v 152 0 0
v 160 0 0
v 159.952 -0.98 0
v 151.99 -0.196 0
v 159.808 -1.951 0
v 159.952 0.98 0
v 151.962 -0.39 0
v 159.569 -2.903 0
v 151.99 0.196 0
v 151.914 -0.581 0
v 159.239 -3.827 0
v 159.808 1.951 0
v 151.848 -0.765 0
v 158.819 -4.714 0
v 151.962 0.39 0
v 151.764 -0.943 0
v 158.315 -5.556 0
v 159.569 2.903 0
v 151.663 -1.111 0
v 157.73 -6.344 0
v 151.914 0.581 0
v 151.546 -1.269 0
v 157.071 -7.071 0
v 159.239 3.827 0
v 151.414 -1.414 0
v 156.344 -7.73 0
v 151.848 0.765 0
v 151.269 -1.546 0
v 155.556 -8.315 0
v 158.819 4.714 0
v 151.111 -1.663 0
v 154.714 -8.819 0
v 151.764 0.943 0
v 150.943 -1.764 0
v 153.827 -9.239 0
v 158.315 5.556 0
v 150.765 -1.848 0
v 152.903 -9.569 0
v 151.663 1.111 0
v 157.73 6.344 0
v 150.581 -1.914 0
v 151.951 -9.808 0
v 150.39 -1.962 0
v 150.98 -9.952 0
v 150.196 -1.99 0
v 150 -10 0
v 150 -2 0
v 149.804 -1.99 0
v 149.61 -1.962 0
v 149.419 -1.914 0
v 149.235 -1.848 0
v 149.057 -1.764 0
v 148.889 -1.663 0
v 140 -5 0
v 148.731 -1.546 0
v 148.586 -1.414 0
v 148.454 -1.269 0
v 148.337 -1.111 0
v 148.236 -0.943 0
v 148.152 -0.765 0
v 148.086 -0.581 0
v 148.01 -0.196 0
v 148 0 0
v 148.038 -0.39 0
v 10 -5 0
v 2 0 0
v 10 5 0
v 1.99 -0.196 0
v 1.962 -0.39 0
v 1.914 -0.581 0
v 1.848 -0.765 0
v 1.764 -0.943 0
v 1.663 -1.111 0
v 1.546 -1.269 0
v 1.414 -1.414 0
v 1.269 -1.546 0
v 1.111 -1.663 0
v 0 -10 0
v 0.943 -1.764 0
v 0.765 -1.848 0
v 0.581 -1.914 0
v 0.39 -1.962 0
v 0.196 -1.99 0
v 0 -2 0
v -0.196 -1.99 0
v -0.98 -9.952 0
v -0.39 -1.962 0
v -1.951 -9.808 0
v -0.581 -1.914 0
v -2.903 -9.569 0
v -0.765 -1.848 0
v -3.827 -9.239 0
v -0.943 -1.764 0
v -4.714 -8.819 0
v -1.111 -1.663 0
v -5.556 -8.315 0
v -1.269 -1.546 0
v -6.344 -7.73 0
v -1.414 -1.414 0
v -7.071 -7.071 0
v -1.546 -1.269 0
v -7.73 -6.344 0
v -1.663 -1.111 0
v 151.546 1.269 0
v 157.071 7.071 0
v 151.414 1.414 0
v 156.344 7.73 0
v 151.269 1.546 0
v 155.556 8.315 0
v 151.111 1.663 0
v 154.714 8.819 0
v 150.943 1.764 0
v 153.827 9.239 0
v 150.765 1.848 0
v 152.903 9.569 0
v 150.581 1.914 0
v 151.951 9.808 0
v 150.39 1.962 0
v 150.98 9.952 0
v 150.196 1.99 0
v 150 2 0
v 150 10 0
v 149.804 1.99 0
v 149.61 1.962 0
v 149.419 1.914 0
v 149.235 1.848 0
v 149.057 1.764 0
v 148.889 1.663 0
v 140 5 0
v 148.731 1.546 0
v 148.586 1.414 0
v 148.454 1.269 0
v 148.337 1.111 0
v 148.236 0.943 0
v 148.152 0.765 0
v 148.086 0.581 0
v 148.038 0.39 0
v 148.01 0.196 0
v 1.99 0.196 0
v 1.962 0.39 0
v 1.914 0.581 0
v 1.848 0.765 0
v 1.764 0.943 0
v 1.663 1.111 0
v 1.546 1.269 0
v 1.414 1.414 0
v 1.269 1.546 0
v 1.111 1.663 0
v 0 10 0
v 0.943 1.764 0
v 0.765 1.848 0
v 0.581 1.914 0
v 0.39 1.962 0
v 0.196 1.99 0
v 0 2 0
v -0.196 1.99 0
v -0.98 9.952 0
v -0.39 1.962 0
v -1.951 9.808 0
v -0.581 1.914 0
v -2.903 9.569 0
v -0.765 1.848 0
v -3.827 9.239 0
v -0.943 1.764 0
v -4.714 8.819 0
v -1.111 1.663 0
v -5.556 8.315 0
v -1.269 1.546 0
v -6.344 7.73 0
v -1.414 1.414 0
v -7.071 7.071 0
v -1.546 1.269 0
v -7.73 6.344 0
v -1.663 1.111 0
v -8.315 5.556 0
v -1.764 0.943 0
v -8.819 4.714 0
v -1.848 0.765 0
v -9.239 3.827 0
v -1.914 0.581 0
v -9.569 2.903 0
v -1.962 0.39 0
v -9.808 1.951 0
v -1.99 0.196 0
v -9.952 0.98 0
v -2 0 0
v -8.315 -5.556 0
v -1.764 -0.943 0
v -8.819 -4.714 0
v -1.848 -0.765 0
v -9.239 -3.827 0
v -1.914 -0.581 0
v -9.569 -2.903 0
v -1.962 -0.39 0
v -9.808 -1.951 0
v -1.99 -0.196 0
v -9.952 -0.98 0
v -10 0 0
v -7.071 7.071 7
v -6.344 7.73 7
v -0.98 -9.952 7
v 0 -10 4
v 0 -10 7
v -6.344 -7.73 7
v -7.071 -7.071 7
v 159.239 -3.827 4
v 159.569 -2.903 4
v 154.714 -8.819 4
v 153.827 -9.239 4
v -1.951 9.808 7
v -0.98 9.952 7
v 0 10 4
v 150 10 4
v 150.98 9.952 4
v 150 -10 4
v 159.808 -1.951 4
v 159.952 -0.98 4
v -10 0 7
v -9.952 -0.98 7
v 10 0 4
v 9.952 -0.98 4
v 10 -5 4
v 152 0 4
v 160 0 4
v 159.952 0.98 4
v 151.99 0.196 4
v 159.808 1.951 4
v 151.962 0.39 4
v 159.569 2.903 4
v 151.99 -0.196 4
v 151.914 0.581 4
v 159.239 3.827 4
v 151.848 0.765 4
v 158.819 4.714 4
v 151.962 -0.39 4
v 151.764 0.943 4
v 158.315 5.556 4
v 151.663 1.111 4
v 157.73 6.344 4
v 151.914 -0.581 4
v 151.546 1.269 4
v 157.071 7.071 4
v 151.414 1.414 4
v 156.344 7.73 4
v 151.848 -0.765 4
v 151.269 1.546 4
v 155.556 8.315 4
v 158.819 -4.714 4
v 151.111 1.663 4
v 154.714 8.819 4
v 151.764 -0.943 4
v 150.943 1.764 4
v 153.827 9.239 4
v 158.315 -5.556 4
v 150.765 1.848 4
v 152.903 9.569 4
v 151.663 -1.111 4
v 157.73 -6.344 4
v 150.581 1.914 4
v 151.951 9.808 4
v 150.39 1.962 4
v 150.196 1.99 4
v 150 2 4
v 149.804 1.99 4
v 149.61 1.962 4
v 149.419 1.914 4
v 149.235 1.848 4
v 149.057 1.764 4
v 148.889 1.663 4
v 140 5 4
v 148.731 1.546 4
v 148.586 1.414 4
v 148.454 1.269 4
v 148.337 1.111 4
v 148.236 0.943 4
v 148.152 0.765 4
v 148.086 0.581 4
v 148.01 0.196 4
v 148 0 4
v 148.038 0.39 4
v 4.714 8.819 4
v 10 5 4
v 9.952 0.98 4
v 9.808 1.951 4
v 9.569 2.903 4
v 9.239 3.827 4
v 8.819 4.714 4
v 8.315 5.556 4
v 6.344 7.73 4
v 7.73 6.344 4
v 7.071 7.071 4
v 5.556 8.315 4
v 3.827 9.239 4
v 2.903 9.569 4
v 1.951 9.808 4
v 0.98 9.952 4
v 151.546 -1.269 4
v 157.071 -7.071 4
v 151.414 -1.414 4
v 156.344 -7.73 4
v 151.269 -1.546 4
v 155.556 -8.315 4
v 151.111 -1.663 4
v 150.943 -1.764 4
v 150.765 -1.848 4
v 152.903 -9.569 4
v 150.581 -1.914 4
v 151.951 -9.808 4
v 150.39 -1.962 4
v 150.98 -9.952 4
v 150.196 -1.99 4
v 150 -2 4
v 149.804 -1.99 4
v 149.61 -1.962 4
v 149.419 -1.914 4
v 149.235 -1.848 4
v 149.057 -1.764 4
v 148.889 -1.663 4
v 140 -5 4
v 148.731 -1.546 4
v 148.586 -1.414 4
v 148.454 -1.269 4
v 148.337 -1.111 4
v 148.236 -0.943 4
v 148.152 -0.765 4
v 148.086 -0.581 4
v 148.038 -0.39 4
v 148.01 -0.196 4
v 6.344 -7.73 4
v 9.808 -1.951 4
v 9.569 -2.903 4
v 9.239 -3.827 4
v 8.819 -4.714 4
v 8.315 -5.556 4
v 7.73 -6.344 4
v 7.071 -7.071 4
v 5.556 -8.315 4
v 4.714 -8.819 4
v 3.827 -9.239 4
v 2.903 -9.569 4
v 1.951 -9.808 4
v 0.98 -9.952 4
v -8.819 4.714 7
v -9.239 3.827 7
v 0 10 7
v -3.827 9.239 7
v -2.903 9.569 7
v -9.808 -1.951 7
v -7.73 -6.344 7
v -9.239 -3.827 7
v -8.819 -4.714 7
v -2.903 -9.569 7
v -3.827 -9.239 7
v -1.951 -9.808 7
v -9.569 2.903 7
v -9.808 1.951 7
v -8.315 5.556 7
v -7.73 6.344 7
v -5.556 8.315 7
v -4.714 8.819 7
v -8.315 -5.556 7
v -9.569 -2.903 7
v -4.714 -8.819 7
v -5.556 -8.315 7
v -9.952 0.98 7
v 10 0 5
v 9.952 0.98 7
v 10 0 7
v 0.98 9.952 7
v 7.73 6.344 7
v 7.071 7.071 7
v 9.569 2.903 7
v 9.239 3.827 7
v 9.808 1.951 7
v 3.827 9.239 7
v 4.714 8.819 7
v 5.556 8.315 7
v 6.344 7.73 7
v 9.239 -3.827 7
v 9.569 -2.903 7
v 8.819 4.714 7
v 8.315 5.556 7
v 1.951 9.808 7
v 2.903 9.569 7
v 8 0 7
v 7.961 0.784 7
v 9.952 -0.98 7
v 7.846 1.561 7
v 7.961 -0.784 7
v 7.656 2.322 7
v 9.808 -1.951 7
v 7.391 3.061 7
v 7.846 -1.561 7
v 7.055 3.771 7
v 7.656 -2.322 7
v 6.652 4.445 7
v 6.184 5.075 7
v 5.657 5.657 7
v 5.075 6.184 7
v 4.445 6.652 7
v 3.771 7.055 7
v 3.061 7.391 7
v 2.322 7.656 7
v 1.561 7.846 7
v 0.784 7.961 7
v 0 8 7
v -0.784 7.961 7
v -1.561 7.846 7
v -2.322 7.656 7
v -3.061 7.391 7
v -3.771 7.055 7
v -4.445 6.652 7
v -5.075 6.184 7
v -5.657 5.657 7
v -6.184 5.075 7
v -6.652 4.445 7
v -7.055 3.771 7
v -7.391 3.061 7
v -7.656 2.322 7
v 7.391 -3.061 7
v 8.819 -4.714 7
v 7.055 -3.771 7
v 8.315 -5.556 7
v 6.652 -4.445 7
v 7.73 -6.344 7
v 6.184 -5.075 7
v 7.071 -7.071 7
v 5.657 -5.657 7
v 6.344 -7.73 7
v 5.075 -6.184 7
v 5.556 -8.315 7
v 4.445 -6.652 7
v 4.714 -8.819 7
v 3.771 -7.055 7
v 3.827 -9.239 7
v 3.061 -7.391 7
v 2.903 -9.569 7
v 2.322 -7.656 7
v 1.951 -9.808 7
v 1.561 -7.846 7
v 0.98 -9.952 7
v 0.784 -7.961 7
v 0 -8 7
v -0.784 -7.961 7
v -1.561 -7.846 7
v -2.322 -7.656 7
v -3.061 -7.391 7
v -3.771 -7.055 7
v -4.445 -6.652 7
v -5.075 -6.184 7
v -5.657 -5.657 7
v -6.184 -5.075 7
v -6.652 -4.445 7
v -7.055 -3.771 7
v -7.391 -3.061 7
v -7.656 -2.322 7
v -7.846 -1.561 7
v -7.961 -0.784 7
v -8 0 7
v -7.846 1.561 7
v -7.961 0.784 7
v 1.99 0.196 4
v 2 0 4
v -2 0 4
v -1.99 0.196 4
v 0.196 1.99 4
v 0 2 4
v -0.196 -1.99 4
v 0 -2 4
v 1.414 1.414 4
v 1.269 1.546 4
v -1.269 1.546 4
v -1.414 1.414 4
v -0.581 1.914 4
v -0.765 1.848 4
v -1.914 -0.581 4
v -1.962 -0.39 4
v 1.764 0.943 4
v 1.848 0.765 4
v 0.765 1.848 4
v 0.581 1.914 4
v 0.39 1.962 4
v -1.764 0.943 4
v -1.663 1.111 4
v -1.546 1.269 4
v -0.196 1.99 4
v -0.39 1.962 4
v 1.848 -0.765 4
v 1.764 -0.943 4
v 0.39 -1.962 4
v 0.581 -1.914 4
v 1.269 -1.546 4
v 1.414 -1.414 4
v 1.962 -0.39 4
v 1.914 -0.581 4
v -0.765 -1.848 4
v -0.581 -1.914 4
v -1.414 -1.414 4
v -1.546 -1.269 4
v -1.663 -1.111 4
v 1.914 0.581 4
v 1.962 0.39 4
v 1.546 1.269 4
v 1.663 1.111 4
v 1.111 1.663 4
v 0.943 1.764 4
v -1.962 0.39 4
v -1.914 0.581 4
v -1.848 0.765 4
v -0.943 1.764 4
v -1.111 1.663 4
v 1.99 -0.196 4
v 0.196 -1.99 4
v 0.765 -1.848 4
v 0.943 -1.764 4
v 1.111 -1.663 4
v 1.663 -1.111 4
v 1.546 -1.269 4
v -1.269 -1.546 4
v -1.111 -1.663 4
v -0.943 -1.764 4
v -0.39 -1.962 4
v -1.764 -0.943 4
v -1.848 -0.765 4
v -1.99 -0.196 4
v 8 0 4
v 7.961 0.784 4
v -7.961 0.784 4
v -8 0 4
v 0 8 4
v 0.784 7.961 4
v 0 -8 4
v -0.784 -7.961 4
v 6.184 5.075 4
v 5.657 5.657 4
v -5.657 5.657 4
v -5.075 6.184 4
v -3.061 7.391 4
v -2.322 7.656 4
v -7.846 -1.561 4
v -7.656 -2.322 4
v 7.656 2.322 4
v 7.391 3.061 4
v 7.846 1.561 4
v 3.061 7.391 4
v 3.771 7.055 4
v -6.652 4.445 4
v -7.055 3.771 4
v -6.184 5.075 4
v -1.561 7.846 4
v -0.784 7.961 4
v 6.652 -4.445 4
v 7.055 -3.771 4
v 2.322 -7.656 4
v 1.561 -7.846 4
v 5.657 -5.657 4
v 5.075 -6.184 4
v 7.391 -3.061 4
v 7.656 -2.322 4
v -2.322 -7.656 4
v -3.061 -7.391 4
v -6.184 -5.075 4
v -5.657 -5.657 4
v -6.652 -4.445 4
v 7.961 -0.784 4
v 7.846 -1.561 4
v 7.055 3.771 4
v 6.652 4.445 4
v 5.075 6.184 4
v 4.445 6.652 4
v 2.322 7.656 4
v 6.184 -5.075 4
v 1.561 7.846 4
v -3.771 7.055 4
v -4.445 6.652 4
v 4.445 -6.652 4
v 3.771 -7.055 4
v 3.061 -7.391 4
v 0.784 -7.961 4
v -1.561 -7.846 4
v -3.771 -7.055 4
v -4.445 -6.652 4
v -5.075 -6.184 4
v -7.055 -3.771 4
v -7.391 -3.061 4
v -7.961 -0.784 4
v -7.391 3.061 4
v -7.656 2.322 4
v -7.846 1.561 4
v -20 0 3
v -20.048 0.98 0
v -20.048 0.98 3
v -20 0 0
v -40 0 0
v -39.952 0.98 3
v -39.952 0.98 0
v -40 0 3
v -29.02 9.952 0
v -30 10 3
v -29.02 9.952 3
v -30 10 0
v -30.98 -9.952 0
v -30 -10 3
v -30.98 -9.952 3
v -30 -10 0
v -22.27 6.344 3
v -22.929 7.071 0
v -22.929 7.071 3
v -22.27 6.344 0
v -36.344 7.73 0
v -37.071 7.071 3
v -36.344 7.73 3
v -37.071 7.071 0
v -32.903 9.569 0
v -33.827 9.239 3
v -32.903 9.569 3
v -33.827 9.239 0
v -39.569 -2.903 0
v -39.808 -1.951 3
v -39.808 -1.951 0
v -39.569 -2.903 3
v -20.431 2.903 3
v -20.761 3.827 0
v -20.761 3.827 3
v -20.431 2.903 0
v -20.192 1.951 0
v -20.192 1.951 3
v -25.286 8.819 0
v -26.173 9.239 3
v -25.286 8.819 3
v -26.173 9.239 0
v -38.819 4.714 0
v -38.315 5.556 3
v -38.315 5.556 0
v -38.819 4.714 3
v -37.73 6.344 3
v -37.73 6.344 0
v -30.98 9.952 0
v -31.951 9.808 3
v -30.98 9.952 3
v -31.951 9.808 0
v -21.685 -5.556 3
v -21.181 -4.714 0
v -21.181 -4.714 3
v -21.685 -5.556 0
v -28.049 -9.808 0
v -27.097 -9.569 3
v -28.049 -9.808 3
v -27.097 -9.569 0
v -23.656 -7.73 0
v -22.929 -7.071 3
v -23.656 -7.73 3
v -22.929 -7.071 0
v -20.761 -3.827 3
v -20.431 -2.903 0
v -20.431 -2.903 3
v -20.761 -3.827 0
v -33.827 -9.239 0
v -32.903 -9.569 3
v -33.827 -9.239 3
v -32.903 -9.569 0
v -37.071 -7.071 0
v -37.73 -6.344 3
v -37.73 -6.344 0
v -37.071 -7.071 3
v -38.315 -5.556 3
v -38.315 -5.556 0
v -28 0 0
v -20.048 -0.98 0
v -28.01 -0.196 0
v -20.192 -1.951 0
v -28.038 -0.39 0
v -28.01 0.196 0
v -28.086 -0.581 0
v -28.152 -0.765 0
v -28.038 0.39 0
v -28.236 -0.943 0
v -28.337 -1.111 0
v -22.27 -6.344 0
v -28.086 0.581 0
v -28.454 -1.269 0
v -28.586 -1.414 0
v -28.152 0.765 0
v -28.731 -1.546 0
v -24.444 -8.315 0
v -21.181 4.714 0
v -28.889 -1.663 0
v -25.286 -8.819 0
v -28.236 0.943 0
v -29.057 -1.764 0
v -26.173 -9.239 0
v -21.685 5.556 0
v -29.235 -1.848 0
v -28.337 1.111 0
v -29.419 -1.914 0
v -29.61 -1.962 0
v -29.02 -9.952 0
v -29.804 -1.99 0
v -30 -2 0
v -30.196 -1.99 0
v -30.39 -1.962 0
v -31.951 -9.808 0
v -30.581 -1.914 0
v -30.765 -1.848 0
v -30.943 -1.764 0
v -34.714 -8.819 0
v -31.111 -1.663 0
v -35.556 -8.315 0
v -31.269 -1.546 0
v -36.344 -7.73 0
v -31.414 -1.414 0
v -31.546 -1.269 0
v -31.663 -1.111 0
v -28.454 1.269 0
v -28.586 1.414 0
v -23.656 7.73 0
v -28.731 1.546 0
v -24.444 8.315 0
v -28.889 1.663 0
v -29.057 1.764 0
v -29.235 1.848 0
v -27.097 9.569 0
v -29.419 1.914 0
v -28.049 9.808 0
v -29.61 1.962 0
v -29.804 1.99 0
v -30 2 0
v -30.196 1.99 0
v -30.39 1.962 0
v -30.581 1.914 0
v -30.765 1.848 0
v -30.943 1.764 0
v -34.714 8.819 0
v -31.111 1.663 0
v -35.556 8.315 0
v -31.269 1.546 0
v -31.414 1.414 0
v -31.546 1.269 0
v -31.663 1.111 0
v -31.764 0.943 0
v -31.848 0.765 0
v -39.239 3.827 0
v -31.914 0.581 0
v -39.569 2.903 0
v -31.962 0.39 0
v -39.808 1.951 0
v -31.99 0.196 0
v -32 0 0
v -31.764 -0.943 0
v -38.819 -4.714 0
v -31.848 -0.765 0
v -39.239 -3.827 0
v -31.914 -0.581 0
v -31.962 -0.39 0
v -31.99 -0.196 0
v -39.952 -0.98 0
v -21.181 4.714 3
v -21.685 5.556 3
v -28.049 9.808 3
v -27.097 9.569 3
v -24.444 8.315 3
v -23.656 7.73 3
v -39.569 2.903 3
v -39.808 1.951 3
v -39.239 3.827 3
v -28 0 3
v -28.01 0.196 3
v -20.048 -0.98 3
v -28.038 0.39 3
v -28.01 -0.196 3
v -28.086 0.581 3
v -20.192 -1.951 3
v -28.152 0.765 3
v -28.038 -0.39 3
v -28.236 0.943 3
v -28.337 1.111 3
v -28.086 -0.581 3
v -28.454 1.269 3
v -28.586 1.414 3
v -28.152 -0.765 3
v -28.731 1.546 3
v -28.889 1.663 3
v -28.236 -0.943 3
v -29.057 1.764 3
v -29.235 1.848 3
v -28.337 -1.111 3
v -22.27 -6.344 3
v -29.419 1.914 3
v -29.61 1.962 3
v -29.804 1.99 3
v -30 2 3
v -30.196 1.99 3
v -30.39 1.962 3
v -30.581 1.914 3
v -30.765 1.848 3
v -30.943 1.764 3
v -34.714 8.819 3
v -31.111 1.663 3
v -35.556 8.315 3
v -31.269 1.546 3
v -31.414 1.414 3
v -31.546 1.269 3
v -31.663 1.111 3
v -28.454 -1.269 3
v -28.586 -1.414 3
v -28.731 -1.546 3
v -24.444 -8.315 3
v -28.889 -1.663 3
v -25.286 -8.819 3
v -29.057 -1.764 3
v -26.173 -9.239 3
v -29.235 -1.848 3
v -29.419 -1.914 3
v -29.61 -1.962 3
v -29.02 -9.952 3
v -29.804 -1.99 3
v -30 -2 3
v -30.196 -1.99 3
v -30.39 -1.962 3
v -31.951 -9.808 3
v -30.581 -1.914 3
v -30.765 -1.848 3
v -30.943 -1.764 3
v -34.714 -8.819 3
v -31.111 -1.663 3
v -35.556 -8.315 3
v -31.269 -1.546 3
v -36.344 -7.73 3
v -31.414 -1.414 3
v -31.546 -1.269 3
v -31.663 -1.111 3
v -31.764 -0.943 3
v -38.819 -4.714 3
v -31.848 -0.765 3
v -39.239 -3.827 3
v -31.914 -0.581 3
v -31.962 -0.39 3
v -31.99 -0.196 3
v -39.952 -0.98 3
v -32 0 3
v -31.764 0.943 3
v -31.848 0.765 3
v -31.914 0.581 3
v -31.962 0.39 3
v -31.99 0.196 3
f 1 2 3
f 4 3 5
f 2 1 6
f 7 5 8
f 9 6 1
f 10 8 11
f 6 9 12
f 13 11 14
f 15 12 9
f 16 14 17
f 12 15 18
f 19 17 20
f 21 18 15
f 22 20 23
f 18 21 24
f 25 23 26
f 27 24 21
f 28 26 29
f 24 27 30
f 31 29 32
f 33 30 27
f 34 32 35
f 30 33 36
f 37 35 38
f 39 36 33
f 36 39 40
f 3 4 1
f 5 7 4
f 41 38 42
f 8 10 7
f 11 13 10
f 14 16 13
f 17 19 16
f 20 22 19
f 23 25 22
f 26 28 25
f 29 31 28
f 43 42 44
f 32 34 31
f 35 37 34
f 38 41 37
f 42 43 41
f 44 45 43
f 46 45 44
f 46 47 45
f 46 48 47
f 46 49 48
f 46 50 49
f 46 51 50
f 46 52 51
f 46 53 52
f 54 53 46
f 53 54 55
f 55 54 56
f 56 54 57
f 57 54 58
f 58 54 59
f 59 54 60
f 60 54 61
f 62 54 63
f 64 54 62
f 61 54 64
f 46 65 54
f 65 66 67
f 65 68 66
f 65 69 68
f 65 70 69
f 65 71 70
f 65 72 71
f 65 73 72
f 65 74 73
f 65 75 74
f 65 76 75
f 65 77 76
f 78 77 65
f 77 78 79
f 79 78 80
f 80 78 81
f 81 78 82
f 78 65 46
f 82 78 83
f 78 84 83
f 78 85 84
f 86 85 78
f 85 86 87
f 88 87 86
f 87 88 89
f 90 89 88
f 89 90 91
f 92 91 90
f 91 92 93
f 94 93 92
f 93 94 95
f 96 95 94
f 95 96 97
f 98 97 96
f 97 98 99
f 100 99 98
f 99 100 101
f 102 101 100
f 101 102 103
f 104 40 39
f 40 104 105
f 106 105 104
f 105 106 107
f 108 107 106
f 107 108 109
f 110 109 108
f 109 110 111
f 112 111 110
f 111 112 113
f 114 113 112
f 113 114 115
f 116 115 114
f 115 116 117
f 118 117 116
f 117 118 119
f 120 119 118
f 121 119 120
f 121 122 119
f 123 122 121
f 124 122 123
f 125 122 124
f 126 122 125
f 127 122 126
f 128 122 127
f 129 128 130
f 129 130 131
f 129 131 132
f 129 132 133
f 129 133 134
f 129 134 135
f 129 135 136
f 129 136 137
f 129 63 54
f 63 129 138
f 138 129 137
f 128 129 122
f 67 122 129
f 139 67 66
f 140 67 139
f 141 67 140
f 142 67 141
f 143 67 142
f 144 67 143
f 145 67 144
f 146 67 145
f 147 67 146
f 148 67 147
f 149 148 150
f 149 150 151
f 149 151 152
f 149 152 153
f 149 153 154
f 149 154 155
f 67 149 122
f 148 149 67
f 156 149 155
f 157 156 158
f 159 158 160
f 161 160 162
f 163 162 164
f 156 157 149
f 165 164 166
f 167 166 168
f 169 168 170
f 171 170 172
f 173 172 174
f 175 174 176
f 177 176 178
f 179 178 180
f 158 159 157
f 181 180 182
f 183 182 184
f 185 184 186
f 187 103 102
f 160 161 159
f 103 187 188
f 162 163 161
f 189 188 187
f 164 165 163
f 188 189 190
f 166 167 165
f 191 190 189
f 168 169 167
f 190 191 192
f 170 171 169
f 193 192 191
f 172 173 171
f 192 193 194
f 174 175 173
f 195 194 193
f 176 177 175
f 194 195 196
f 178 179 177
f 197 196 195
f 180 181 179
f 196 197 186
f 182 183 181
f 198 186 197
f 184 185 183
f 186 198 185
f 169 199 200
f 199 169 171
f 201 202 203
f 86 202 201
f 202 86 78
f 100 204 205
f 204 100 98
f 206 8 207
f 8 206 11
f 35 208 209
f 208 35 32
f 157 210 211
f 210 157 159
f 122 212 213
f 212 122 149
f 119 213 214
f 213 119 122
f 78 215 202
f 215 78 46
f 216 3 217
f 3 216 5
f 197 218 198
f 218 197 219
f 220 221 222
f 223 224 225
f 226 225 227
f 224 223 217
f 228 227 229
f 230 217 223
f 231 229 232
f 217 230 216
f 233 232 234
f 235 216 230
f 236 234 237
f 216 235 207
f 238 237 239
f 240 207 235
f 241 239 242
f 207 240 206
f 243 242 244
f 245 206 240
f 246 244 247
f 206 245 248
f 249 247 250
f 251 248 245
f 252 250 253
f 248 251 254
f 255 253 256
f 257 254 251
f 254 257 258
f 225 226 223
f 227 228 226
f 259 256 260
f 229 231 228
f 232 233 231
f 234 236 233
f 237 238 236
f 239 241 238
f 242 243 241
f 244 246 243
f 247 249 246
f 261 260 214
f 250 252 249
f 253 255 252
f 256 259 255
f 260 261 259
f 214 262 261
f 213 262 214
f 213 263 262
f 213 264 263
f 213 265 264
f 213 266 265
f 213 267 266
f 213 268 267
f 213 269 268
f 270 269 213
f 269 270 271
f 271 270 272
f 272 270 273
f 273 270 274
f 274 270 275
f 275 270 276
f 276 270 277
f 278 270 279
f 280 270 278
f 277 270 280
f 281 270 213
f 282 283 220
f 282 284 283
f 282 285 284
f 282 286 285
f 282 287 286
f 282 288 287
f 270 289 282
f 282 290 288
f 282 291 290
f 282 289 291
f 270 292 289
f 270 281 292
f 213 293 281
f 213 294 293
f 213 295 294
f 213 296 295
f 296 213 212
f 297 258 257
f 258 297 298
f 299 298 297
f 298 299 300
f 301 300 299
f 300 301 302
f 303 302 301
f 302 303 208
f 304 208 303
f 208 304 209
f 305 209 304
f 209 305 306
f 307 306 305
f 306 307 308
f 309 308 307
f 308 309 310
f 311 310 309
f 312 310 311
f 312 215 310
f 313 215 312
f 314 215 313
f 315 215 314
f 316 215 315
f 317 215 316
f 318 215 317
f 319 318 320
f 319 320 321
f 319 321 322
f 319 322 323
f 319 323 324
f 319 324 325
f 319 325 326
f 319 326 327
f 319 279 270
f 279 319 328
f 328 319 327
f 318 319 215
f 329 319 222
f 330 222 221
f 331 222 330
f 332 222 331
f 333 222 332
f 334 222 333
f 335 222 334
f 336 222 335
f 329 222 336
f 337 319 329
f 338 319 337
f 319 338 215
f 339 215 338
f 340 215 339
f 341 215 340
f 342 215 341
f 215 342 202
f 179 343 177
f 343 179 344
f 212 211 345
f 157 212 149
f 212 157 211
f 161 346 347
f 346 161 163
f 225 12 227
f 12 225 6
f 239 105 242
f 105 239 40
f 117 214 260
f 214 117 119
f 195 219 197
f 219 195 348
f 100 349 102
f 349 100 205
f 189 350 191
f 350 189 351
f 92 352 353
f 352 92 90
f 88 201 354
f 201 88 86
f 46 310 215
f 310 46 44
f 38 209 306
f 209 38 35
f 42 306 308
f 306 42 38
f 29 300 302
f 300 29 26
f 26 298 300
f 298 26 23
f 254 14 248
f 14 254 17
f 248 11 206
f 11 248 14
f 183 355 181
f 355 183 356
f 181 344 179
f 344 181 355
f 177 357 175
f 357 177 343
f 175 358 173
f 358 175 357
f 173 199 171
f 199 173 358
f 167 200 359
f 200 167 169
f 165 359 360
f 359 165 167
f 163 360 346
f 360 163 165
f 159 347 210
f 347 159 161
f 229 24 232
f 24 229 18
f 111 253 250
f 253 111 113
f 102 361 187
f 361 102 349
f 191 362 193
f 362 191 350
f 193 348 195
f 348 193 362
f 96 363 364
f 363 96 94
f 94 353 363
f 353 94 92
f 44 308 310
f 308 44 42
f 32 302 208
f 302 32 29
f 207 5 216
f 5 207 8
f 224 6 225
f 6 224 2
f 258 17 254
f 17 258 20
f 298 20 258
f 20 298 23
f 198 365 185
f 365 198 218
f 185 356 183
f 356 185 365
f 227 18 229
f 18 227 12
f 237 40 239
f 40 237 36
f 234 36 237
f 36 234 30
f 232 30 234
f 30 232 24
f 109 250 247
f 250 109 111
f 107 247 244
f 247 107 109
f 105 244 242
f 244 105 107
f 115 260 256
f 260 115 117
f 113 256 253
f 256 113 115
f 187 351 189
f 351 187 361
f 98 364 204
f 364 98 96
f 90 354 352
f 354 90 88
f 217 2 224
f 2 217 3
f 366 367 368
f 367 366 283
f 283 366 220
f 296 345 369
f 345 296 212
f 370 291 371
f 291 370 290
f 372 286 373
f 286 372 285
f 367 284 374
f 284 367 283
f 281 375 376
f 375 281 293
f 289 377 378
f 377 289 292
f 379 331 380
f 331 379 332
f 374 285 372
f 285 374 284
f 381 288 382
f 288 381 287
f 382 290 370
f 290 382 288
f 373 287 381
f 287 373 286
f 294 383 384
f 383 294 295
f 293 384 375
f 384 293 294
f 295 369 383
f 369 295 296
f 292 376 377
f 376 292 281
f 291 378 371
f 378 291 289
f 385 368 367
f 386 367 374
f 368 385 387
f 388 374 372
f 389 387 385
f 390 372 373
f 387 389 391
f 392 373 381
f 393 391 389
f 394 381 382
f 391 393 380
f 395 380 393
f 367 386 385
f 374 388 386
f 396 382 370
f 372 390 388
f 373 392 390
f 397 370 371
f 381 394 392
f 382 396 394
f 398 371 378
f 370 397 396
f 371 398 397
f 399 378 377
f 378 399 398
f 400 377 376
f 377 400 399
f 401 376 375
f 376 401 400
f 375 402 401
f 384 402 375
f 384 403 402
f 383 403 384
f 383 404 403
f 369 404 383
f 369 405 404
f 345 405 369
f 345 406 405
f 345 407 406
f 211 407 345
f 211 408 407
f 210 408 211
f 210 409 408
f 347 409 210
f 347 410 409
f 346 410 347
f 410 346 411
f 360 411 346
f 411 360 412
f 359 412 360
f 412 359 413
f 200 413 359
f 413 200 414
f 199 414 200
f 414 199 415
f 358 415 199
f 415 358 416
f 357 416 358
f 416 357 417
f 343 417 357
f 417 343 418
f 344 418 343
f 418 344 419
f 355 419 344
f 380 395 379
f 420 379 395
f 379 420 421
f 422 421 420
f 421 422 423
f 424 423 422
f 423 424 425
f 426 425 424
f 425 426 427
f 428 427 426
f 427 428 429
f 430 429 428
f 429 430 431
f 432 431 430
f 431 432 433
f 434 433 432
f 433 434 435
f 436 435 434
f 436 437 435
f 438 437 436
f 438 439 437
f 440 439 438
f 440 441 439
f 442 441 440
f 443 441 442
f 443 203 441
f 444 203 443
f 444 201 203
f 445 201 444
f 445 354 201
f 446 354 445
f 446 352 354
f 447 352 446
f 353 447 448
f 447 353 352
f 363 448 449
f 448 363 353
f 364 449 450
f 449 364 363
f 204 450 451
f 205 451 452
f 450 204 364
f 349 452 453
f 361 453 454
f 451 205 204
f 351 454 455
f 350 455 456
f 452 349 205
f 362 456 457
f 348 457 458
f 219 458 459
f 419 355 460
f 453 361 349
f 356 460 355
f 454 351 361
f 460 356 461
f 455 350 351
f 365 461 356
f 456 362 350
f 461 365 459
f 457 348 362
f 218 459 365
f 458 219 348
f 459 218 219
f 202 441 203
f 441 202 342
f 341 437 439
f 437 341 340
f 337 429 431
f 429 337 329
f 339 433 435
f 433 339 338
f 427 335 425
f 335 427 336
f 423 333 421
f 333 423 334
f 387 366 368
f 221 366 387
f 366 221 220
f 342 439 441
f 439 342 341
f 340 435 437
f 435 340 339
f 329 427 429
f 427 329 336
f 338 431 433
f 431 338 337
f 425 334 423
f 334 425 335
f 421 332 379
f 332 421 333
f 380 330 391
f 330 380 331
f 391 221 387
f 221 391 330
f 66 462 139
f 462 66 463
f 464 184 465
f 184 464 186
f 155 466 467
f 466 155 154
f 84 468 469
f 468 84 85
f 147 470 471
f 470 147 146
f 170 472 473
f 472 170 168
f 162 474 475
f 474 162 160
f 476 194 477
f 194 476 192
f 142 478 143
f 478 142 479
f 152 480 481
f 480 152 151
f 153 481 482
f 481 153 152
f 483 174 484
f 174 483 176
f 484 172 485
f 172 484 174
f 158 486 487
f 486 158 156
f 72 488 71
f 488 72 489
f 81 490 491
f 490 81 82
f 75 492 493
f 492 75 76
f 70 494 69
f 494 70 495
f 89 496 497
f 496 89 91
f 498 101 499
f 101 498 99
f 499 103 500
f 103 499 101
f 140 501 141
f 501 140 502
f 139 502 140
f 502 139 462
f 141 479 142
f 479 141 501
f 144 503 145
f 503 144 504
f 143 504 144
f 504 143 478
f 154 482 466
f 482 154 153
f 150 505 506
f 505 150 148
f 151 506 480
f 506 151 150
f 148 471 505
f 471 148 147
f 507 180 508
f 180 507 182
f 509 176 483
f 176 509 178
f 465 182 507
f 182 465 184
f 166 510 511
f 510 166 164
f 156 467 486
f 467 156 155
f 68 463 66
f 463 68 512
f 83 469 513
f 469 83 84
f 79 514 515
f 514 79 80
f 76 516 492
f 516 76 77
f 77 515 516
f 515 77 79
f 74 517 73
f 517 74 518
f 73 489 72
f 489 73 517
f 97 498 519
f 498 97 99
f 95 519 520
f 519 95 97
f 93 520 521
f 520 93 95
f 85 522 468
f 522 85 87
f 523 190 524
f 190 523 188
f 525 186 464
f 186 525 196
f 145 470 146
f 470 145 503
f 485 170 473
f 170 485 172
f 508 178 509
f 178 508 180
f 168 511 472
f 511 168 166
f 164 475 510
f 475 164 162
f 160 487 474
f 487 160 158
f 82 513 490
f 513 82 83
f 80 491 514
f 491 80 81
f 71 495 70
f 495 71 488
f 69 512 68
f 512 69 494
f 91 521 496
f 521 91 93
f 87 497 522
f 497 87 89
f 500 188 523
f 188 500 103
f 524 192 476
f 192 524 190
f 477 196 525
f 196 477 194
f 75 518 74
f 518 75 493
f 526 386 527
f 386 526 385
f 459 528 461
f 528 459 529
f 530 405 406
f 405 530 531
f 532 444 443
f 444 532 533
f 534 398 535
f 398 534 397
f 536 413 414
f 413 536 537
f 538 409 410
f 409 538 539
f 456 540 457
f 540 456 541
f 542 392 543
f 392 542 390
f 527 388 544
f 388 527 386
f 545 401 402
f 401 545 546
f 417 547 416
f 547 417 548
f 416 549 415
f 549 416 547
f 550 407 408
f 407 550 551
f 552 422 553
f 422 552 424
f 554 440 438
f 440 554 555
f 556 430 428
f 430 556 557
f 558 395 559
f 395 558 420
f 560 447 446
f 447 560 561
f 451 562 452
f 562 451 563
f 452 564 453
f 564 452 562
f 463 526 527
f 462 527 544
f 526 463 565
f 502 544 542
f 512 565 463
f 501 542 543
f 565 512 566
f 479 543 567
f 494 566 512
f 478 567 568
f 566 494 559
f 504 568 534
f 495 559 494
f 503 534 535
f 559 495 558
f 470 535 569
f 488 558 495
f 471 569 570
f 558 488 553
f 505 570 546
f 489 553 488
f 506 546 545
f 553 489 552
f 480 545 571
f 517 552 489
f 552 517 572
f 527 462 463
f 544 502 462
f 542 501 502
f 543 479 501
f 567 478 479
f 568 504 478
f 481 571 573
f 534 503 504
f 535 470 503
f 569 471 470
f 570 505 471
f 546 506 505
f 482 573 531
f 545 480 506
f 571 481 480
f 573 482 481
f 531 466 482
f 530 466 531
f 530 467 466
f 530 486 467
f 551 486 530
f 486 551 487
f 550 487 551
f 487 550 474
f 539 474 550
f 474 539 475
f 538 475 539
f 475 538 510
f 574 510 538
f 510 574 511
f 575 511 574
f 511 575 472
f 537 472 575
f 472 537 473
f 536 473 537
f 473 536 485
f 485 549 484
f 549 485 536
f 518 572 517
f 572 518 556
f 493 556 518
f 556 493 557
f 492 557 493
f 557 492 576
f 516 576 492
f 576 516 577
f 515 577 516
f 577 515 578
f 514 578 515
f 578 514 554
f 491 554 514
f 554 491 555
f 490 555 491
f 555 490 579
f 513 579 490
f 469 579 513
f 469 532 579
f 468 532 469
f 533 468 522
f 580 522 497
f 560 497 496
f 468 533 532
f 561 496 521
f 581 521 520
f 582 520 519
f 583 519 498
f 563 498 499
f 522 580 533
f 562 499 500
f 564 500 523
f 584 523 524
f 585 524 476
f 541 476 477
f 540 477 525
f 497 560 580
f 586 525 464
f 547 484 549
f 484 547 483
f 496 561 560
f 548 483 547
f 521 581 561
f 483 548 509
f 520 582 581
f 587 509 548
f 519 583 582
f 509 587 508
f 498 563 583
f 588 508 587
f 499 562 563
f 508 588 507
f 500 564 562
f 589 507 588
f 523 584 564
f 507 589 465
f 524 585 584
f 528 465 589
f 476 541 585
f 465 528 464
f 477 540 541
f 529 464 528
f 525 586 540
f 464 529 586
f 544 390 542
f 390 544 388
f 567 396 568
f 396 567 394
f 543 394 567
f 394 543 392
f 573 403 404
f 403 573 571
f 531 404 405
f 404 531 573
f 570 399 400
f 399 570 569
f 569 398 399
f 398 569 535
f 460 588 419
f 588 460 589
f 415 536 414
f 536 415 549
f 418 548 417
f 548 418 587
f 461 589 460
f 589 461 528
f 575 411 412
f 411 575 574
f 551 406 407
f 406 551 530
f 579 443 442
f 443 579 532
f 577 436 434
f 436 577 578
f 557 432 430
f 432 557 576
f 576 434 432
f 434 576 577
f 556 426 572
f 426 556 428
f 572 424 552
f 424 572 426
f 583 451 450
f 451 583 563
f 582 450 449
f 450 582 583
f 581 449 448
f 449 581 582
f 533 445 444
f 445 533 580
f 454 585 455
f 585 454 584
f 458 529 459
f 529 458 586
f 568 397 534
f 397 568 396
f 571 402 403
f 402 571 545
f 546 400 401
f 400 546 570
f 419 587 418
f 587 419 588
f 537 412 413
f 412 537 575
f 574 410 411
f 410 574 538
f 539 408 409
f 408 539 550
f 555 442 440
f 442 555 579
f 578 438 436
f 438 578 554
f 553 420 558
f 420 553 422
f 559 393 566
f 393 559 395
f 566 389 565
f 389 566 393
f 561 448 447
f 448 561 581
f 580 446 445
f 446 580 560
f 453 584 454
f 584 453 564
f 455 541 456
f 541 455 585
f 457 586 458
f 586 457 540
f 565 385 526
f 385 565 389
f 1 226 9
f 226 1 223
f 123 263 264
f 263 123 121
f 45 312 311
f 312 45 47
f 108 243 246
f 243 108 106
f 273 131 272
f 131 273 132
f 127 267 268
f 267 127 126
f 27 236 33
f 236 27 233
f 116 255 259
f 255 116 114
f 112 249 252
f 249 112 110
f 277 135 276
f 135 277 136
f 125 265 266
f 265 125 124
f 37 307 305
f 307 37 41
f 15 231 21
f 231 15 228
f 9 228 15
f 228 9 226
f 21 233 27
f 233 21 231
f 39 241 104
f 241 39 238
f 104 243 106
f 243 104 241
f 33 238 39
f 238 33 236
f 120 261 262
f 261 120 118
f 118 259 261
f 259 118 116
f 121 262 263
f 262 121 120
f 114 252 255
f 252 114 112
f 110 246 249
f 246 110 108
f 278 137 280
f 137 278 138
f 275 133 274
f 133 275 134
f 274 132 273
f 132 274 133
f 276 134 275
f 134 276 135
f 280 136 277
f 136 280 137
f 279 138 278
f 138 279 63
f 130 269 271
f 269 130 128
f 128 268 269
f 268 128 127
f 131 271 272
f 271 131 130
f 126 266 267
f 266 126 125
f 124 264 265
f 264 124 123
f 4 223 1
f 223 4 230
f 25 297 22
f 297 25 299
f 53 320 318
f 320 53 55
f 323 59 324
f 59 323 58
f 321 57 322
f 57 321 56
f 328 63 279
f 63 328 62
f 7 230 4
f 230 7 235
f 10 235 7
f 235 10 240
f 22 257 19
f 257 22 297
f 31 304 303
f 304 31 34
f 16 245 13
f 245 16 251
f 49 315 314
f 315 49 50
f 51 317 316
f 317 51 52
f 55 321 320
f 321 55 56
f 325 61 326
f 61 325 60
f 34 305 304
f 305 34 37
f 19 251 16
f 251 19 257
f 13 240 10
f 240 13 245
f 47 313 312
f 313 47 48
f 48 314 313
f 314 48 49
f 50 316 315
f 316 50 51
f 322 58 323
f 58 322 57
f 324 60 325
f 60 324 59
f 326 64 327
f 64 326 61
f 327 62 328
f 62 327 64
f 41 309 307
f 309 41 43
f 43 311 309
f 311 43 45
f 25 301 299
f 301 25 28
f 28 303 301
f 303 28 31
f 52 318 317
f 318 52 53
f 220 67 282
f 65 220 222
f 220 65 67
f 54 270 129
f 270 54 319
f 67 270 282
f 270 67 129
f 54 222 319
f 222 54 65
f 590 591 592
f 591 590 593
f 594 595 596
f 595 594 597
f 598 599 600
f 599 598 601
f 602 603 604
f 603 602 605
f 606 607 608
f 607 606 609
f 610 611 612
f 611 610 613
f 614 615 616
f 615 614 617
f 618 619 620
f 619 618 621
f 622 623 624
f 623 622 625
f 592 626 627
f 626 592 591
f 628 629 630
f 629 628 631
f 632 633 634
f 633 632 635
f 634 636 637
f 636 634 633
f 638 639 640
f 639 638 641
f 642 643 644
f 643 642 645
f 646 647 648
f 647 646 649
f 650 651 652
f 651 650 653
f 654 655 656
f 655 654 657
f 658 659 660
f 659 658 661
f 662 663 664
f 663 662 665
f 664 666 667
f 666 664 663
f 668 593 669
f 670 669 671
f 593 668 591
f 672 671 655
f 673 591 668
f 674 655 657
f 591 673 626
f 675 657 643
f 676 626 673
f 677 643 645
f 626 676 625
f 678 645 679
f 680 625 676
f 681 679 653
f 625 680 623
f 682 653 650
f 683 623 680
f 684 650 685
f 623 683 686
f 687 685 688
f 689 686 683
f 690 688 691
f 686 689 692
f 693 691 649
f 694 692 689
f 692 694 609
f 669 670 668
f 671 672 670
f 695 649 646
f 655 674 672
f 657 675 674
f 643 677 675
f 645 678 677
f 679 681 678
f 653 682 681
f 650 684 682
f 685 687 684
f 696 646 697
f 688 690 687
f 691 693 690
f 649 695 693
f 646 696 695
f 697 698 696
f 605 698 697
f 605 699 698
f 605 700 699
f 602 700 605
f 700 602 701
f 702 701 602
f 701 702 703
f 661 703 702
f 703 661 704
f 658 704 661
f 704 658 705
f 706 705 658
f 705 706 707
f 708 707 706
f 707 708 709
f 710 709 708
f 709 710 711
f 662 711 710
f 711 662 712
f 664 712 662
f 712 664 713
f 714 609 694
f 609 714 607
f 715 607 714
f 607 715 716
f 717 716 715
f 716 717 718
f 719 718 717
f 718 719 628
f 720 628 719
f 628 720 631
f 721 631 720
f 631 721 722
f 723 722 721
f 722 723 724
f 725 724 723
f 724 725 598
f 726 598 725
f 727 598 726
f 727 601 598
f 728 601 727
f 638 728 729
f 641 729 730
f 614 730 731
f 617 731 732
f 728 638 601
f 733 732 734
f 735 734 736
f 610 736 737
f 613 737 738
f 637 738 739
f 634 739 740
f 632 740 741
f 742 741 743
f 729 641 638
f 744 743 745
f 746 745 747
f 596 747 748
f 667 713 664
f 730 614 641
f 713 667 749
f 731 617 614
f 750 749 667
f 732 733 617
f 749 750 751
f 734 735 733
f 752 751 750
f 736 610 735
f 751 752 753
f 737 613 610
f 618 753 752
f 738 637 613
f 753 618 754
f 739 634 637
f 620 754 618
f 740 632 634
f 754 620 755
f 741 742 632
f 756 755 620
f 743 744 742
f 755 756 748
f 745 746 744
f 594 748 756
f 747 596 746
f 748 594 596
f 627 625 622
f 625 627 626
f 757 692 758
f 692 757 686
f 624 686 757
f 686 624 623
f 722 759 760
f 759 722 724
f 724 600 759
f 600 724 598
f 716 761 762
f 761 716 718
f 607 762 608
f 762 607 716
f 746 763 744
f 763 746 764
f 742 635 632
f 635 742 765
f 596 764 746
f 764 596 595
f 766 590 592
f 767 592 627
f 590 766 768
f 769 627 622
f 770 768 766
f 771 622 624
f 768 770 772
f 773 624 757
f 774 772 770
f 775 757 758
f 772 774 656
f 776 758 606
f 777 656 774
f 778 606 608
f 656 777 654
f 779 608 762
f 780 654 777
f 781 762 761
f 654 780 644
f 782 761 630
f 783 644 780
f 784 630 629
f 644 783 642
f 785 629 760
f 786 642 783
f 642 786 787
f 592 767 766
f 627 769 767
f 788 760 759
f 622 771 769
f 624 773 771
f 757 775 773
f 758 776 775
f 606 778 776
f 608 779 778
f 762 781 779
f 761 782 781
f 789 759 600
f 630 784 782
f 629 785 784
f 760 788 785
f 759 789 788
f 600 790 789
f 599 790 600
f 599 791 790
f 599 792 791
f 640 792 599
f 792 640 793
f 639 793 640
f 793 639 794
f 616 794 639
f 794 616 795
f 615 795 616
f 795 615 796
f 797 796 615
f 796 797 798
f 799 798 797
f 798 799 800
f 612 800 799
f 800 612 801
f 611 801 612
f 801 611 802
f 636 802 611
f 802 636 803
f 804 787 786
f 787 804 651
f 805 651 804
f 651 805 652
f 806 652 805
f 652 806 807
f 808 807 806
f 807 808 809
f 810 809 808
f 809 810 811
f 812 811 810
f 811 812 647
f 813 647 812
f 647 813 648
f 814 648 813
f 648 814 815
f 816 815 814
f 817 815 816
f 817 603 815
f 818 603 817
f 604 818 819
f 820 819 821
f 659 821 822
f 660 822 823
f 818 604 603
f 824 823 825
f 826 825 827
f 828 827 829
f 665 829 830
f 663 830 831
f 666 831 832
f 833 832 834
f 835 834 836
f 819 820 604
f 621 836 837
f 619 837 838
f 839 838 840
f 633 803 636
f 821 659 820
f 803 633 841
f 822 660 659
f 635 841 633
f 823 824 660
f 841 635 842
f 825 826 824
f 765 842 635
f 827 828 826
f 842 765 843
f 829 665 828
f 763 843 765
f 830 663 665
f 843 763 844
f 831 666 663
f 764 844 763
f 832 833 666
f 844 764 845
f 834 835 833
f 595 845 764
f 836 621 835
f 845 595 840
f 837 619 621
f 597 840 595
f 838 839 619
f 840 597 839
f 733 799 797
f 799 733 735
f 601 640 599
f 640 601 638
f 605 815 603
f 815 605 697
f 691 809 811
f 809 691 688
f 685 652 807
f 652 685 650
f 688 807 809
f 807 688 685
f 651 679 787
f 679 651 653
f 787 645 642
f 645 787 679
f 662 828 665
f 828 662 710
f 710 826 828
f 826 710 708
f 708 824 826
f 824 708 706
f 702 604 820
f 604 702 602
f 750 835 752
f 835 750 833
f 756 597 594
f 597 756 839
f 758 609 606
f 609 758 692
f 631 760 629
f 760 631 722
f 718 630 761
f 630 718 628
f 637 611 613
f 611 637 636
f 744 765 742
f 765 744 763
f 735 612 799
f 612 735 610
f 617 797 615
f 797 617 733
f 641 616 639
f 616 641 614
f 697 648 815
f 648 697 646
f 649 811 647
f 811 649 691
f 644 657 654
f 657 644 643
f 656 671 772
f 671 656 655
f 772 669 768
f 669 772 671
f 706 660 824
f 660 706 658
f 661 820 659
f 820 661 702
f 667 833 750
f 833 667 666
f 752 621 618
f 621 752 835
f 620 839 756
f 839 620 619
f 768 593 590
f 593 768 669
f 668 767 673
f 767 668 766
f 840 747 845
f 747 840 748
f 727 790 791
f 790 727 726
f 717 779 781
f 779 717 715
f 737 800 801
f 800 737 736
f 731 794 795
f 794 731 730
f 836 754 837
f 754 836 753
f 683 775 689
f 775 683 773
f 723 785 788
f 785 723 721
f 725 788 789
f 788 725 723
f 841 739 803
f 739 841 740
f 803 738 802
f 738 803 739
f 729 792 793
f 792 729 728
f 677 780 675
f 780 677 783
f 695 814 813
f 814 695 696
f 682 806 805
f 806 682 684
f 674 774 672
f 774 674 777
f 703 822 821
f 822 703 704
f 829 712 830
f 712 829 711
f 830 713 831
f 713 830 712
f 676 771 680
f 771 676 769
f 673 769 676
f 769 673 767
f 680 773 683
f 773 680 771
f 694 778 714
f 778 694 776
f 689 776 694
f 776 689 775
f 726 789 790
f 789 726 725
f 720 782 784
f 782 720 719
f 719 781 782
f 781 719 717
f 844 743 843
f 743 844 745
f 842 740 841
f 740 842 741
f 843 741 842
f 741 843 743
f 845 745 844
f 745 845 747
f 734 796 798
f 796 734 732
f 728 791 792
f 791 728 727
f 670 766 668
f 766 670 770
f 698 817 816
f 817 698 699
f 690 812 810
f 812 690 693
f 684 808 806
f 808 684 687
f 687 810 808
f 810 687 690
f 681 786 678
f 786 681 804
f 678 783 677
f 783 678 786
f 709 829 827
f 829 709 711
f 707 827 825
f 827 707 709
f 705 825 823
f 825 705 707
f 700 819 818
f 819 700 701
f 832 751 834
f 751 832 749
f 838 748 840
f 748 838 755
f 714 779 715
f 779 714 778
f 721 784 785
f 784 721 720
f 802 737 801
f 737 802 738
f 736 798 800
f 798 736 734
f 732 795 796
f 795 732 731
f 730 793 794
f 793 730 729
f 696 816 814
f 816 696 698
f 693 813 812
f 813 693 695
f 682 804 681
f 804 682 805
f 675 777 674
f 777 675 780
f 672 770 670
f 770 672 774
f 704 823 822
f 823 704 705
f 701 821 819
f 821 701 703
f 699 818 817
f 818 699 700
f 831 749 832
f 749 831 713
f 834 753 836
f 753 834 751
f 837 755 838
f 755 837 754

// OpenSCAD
$fn=64;

difference() {
    union() {
        hull() {
            cylinder(d=20, h=4);
            translate([150, 0, 0]) cylinder(d=20, h=4);
        }
        translate([0,0,4]) cylinder(d=20, h=3);
    }
    translate([0,0,-1]) cylinder(h=10, d=4);
    translate([0,0,4]) cylinder(h=10, d=16);
    translate([150,0,-1]) cylinder(h=10, d=4);
    translate([10,-5,-1]) cube([130,10,6]);
}

translate([-30, 0, 0]) difference() {
    cylinder(d=20, h=3);
    translate([0,0,-1]) cylinder(d=4, h=5);
}
